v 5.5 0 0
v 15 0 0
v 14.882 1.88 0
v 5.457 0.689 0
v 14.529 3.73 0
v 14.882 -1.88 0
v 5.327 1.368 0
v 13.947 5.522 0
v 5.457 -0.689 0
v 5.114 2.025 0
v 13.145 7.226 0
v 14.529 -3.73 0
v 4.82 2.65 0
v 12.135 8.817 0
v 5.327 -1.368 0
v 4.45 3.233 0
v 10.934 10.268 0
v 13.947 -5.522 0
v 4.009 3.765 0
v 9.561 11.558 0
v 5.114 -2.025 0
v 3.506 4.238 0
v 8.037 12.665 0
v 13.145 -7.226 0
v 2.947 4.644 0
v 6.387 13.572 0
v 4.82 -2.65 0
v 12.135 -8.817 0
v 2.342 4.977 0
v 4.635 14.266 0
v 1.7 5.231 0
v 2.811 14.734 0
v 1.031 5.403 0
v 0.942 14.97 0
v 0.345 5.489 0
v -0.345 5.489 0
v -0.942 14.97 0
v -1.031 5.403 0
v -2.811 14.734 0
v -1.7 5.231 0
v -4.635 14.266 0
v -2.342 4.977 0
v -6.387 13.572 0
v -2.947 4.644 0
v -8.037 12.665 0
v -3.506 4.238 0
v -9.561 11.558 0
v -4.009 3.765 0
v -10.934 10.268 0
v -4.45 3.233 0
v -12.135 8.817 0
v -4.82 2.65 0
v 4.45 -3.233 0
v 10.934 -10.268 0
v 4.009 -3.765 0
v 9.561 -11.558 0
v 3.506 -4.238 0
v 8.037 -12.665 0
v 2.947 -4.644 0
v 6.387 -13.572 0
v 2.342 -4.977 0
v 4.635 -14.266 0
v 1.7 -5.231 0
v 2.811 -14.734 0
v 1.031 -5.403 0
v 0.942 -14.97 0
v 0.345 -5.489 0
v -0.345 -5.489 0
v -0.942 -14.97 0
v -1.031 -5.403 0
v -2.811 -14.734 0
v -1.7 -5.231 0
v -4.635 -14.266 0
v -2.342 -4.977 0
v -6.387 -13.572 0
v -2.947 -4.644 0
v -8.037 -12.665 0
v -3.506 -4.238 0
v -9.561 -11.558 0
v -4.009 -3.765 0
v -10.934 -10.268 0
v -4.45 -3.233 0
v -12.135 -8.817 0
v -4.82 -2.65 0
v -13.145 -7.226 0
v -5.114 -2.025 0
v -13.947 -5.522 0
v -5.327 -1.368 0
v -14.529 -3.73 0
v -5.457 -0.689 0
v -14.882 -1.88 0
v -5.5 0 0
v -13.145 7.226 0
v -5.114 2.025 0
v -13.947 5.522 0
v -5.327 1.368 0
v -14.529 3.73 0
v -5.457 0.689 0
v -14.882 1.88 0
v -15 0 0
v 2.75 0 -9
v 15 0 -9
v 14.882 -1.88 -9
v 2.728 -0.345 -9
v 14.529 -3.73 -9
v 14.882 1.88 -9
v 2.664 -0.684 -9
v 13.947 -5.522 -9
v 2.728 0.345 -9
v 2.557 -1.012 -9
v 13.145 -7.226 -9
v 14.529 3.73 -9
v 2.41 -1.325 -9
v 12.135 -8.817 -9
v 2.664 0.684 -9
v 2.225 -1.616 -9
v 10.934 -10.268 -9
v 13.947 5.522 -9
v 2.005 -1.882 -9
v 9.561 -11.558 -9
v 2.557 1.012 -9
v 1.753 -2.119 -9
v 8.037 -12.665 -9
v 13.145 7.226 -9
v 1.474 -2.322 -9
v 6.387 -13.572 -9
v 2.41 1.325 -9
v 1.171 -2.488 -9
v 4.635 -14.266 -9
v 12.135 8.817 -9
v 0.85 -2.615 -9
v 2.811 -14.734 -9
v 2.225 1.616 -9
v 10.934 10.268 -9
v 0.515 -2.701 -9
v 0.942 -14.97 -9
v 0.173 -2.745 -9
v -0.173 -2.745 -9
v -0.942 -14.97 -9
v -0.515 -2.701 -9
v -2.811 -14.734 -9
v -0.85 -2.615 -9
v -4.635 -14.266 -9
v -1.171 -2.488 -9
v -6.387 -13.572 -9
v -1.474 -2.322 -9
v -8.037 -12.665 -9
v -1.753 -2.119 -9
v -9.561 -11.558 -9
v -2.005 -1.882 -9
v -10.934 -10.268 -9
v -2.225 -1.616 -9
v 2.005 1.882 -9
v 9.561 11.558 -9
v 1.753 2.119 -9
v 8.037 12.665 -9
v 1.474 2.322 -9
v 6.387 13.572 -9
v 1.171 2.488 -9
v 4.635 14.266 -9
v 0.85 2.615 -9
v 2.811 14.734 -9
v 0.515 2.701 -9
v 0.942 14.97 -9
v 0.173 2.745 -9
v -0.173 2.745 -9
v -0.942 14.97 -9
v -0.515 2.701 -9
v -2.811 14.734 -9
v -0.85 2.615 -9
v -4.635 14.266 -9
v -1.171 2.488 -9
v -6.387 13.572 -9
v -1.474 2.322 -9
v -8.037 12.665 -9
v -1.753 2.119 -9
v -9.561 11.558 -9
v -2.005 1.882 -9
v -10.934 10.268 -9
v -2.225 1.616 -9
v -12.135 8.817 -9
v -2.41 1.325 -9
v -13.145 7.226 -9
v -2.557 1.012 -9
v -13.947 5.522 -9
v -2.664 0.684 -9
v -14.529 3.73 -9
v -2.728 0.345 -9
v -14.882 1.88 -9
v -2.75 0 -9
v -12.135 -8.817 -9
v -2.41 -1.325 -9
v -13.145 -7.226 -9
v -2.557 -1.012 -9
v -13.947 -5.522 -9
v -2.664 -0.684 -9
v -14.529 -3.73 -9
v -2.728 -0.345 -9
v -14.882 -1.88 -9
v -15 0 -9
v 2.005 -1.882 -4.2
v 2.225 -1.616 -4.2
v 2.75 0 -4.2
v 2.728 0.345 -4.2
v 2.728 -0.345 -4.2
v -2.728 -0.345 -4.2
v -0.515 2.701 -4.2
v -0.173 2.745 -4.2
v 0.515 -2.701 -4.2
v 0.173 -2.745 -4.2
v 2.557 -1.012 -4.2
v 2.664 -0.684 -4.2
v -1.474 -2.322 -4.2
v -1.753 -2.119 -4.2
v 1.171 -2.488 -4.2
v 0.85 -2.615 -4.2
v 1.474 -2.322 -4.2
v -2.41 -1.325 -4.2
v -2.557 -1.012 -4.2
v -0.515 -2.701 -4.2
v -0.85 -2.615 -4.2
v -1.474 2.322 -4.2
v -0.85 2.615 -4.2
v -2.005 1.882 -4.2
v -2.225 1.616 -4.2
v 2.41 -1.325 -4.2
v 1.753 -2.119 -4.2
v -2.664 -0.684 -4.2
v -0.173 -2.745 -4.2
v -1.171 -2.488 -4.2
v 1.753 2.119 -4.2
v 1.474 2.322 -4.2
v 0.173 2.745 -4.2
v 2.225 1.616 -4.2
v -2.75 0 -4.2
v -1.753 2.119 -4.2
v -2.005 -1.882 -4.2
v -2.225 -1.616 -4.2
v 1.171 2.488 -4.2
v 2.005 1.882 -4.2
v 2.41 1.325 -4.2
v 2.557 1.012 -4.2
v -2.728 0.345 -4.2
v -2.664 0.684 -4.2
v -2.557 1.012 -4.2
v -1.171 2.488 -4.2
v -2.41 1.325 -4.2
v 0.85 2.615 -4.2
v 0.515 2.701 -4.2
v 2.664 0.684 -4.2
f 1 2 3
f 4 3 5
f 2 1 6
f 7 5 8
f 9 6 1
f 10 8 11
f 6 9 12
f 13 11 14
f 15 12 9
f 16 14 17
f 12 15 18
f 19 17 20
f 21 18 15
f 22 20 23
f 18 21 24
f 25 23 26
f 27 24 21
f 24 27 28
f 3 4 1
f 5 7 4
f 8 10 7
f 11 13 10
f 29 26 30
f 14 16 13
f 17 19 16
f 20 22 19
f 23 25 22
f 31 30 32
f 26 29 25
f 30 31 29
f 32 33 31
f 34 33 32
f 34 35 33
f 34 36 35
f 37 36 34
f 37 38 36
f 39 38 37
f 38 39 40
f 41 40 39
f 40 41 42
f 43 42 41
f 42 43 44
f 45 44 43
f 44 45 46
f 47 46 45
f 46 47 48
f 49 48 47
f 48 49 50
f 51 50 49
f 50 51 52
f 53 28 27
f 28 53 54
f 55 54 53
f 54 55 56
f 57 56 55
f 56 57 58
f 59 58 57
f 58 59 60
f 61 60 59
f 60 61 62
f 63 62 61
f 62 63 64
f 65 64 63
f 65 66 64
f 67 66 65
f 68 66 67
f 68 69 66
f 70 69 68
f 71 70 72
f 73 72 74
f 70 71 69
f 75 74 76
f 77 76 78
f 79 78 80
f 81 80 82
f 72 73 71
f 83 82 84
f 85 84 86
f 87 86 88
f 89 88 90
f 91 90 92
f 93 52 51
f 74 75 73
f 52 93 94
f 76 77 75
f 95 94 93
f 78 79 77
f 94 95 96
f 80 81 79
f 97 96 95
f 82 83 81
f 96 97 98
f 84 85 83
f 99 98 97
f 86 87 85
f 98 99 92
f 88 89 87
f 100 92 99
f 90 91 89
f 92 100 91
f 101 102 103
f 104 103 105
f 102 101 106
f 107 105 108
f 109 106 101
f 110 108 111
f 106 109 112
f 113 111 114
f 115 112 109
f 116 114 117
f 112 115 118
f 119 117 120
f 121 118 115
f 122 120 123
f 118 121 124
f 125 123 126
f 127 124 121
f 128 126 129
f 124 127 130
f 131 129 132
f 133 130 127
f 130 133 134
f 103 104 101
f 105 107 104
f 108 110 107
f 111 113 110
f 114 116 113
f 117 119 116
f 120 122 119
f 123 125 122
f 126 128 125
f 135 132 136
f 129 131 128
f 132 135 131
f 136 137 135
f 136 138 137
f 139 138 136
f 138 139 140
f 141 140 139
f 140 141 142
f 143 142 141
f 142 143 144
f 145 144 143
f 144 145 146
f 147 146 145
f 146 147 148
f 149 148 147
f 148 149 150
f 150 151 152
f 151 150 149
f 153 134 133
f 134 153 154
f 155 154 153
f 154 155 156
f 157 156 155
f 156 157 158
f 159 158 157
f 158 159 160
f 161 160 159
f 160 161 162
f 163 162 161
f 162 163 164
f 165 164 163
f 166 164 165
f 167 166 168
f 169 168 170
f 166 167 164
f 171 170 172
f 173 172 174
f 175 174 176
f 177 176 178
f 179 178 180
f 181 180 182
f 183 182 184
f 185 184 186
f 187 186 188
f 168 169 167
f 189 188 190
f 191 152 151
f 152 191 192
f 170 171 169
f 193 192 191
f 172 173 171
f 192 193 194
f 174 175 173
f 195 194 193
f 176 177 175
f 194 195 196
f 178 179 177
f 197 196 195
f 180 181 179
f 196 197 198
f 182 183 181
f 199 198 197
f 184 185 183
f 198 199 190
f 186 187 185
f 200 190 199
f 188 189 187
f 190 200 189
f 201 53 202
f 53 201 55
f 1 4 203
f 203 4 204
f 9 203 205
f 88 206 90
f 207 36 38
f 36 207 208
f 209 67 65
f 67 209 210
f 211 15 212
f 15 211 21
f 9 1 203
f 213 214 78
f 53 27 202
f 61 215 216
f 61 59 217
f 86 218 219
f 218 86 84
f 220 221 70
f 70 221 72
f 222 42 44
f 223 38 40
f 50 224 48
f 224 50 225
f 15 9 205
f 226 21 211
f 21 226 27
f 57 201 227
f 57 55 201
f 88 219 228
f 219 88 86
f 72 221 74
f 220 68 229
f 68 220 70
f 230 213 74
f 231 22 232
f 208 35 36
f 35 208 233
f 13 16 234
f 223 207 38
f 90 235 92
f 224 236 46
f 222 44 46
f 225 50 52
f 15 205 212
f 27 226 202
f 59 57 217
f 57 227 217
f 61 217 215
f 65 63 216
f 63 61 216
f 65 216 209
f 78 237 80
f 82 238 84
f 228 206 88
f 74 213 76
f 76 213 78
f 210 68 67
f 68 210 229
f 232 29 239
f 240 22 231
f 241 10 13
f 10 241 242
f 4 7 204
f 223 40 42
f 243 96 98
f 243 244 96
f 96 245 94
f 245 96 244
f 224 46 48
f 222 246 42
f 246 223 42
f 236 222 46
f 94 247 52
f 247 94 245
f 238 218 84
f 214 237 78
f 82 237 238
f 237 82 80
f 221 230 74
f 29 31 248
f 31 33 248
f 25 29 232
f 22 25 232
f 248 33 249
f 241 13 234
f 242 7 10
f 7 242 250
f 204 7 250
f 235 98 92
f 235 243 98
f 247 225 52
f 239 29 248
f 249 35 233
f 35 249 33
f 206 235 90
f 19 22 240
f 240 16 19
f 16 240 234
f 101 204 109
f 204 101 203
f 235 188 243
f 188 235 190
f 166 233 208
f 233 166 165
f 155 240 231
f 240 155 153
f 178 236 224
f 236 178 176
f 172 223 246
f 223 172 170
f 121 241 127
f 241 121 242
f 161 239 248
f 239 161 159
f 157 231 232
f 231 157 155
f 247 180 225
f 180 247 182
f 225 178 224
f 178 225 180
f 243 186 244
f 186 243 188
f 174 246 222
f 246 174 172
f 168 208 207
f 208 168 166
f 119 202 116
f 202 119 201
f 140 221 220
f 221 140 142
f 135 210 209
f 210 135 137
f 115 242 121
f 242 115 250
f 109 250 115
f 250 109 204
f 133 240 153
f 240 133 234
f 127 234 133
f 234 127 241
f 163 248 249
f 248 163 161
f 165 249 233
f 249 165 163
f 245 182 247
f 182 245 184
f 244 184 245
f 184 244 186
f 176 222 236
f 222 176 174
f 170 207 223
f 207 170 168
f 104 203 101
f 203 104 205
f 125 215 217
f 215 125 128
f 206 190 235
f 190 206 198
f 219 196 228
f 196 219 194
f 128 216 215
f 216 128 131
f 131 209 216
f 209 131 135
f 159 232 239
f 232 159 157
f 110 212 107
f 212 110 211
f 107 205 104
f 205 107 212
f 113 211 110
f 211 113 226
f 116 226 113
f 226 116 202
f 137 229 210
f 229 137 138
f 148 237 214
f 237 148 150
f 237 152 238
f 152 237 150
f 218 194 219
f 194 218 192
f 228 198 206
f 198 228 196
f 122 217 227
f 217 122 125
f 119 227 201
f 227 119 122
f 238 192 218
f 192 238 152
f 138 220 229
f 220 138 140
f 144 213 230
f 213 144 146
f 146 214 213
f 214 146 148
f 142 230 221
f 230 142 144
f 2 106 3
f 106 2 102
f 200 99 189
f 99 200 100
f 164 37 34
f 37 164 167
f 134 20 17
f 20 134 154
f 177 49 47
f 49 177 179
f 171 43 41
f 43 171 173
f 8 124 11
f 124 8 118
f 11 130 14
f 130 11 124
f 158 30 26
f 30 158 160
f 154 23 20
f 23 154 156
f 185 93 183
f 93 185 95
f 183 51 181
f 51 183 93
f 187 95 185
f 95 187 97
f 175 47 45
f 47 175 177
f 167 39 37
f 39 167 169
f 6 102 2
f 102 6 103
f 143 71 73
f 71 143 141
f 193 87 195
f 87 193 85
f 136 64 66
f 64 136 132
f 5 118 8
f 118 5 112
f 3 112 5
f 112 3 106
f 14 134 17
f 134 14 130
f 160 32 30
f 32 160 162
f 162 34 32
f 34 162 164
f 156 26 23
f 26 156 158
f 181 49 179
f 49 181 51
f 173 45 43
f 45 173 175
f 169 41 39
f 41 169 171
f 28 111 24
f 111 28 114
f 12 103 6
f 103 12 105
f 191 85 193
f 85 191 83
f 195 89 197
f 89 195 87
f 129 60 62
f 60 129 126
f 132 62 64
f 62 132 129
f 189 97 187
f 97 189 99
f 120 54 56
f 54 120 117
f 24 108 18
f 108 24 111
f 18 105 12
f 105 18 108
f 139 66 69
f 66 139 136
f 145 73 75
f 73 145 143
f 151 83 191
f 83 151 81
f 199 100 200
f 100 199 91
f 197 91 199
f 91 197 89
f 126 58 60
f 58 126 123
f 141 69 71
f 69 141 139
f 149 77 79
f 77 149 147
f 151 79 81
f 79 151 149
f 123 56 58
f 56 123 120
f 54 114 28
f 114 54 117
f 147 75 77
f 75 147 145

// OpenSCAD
$fn = 50;


difference() {
	union() {
		translate(v = [0, 0, -9.0000000000]) {
			cylinder(h = 9, r = 15.0000000000);
		}
	}
	union() {
		translate(v = [0, 0, 0]) {
			rotate(a = [0, 0, 0]) {
				difference() {
					union() {
						translate(v = [0, 0, -9.0000000000]) {
							cylinder(h = 9, r = 2.2500000000);
						}
						translate(v = [0, 0, -4.2000000000]) {
							cylinder(h = 4.2000000000, r1 = 2.7500000000, r2 = 5.5000000000);
						}
						translate(v = [0, 0, -9.0000000000]) {
							cylinder(h = 9, r = 2.7500000000);
						}
						translate(v = [0, 0, -9.0000000000]) {
							cylinder(h = 9, r = 2.2500000000);
						}
					}
					union();
				}
			}
		}
	}
}
